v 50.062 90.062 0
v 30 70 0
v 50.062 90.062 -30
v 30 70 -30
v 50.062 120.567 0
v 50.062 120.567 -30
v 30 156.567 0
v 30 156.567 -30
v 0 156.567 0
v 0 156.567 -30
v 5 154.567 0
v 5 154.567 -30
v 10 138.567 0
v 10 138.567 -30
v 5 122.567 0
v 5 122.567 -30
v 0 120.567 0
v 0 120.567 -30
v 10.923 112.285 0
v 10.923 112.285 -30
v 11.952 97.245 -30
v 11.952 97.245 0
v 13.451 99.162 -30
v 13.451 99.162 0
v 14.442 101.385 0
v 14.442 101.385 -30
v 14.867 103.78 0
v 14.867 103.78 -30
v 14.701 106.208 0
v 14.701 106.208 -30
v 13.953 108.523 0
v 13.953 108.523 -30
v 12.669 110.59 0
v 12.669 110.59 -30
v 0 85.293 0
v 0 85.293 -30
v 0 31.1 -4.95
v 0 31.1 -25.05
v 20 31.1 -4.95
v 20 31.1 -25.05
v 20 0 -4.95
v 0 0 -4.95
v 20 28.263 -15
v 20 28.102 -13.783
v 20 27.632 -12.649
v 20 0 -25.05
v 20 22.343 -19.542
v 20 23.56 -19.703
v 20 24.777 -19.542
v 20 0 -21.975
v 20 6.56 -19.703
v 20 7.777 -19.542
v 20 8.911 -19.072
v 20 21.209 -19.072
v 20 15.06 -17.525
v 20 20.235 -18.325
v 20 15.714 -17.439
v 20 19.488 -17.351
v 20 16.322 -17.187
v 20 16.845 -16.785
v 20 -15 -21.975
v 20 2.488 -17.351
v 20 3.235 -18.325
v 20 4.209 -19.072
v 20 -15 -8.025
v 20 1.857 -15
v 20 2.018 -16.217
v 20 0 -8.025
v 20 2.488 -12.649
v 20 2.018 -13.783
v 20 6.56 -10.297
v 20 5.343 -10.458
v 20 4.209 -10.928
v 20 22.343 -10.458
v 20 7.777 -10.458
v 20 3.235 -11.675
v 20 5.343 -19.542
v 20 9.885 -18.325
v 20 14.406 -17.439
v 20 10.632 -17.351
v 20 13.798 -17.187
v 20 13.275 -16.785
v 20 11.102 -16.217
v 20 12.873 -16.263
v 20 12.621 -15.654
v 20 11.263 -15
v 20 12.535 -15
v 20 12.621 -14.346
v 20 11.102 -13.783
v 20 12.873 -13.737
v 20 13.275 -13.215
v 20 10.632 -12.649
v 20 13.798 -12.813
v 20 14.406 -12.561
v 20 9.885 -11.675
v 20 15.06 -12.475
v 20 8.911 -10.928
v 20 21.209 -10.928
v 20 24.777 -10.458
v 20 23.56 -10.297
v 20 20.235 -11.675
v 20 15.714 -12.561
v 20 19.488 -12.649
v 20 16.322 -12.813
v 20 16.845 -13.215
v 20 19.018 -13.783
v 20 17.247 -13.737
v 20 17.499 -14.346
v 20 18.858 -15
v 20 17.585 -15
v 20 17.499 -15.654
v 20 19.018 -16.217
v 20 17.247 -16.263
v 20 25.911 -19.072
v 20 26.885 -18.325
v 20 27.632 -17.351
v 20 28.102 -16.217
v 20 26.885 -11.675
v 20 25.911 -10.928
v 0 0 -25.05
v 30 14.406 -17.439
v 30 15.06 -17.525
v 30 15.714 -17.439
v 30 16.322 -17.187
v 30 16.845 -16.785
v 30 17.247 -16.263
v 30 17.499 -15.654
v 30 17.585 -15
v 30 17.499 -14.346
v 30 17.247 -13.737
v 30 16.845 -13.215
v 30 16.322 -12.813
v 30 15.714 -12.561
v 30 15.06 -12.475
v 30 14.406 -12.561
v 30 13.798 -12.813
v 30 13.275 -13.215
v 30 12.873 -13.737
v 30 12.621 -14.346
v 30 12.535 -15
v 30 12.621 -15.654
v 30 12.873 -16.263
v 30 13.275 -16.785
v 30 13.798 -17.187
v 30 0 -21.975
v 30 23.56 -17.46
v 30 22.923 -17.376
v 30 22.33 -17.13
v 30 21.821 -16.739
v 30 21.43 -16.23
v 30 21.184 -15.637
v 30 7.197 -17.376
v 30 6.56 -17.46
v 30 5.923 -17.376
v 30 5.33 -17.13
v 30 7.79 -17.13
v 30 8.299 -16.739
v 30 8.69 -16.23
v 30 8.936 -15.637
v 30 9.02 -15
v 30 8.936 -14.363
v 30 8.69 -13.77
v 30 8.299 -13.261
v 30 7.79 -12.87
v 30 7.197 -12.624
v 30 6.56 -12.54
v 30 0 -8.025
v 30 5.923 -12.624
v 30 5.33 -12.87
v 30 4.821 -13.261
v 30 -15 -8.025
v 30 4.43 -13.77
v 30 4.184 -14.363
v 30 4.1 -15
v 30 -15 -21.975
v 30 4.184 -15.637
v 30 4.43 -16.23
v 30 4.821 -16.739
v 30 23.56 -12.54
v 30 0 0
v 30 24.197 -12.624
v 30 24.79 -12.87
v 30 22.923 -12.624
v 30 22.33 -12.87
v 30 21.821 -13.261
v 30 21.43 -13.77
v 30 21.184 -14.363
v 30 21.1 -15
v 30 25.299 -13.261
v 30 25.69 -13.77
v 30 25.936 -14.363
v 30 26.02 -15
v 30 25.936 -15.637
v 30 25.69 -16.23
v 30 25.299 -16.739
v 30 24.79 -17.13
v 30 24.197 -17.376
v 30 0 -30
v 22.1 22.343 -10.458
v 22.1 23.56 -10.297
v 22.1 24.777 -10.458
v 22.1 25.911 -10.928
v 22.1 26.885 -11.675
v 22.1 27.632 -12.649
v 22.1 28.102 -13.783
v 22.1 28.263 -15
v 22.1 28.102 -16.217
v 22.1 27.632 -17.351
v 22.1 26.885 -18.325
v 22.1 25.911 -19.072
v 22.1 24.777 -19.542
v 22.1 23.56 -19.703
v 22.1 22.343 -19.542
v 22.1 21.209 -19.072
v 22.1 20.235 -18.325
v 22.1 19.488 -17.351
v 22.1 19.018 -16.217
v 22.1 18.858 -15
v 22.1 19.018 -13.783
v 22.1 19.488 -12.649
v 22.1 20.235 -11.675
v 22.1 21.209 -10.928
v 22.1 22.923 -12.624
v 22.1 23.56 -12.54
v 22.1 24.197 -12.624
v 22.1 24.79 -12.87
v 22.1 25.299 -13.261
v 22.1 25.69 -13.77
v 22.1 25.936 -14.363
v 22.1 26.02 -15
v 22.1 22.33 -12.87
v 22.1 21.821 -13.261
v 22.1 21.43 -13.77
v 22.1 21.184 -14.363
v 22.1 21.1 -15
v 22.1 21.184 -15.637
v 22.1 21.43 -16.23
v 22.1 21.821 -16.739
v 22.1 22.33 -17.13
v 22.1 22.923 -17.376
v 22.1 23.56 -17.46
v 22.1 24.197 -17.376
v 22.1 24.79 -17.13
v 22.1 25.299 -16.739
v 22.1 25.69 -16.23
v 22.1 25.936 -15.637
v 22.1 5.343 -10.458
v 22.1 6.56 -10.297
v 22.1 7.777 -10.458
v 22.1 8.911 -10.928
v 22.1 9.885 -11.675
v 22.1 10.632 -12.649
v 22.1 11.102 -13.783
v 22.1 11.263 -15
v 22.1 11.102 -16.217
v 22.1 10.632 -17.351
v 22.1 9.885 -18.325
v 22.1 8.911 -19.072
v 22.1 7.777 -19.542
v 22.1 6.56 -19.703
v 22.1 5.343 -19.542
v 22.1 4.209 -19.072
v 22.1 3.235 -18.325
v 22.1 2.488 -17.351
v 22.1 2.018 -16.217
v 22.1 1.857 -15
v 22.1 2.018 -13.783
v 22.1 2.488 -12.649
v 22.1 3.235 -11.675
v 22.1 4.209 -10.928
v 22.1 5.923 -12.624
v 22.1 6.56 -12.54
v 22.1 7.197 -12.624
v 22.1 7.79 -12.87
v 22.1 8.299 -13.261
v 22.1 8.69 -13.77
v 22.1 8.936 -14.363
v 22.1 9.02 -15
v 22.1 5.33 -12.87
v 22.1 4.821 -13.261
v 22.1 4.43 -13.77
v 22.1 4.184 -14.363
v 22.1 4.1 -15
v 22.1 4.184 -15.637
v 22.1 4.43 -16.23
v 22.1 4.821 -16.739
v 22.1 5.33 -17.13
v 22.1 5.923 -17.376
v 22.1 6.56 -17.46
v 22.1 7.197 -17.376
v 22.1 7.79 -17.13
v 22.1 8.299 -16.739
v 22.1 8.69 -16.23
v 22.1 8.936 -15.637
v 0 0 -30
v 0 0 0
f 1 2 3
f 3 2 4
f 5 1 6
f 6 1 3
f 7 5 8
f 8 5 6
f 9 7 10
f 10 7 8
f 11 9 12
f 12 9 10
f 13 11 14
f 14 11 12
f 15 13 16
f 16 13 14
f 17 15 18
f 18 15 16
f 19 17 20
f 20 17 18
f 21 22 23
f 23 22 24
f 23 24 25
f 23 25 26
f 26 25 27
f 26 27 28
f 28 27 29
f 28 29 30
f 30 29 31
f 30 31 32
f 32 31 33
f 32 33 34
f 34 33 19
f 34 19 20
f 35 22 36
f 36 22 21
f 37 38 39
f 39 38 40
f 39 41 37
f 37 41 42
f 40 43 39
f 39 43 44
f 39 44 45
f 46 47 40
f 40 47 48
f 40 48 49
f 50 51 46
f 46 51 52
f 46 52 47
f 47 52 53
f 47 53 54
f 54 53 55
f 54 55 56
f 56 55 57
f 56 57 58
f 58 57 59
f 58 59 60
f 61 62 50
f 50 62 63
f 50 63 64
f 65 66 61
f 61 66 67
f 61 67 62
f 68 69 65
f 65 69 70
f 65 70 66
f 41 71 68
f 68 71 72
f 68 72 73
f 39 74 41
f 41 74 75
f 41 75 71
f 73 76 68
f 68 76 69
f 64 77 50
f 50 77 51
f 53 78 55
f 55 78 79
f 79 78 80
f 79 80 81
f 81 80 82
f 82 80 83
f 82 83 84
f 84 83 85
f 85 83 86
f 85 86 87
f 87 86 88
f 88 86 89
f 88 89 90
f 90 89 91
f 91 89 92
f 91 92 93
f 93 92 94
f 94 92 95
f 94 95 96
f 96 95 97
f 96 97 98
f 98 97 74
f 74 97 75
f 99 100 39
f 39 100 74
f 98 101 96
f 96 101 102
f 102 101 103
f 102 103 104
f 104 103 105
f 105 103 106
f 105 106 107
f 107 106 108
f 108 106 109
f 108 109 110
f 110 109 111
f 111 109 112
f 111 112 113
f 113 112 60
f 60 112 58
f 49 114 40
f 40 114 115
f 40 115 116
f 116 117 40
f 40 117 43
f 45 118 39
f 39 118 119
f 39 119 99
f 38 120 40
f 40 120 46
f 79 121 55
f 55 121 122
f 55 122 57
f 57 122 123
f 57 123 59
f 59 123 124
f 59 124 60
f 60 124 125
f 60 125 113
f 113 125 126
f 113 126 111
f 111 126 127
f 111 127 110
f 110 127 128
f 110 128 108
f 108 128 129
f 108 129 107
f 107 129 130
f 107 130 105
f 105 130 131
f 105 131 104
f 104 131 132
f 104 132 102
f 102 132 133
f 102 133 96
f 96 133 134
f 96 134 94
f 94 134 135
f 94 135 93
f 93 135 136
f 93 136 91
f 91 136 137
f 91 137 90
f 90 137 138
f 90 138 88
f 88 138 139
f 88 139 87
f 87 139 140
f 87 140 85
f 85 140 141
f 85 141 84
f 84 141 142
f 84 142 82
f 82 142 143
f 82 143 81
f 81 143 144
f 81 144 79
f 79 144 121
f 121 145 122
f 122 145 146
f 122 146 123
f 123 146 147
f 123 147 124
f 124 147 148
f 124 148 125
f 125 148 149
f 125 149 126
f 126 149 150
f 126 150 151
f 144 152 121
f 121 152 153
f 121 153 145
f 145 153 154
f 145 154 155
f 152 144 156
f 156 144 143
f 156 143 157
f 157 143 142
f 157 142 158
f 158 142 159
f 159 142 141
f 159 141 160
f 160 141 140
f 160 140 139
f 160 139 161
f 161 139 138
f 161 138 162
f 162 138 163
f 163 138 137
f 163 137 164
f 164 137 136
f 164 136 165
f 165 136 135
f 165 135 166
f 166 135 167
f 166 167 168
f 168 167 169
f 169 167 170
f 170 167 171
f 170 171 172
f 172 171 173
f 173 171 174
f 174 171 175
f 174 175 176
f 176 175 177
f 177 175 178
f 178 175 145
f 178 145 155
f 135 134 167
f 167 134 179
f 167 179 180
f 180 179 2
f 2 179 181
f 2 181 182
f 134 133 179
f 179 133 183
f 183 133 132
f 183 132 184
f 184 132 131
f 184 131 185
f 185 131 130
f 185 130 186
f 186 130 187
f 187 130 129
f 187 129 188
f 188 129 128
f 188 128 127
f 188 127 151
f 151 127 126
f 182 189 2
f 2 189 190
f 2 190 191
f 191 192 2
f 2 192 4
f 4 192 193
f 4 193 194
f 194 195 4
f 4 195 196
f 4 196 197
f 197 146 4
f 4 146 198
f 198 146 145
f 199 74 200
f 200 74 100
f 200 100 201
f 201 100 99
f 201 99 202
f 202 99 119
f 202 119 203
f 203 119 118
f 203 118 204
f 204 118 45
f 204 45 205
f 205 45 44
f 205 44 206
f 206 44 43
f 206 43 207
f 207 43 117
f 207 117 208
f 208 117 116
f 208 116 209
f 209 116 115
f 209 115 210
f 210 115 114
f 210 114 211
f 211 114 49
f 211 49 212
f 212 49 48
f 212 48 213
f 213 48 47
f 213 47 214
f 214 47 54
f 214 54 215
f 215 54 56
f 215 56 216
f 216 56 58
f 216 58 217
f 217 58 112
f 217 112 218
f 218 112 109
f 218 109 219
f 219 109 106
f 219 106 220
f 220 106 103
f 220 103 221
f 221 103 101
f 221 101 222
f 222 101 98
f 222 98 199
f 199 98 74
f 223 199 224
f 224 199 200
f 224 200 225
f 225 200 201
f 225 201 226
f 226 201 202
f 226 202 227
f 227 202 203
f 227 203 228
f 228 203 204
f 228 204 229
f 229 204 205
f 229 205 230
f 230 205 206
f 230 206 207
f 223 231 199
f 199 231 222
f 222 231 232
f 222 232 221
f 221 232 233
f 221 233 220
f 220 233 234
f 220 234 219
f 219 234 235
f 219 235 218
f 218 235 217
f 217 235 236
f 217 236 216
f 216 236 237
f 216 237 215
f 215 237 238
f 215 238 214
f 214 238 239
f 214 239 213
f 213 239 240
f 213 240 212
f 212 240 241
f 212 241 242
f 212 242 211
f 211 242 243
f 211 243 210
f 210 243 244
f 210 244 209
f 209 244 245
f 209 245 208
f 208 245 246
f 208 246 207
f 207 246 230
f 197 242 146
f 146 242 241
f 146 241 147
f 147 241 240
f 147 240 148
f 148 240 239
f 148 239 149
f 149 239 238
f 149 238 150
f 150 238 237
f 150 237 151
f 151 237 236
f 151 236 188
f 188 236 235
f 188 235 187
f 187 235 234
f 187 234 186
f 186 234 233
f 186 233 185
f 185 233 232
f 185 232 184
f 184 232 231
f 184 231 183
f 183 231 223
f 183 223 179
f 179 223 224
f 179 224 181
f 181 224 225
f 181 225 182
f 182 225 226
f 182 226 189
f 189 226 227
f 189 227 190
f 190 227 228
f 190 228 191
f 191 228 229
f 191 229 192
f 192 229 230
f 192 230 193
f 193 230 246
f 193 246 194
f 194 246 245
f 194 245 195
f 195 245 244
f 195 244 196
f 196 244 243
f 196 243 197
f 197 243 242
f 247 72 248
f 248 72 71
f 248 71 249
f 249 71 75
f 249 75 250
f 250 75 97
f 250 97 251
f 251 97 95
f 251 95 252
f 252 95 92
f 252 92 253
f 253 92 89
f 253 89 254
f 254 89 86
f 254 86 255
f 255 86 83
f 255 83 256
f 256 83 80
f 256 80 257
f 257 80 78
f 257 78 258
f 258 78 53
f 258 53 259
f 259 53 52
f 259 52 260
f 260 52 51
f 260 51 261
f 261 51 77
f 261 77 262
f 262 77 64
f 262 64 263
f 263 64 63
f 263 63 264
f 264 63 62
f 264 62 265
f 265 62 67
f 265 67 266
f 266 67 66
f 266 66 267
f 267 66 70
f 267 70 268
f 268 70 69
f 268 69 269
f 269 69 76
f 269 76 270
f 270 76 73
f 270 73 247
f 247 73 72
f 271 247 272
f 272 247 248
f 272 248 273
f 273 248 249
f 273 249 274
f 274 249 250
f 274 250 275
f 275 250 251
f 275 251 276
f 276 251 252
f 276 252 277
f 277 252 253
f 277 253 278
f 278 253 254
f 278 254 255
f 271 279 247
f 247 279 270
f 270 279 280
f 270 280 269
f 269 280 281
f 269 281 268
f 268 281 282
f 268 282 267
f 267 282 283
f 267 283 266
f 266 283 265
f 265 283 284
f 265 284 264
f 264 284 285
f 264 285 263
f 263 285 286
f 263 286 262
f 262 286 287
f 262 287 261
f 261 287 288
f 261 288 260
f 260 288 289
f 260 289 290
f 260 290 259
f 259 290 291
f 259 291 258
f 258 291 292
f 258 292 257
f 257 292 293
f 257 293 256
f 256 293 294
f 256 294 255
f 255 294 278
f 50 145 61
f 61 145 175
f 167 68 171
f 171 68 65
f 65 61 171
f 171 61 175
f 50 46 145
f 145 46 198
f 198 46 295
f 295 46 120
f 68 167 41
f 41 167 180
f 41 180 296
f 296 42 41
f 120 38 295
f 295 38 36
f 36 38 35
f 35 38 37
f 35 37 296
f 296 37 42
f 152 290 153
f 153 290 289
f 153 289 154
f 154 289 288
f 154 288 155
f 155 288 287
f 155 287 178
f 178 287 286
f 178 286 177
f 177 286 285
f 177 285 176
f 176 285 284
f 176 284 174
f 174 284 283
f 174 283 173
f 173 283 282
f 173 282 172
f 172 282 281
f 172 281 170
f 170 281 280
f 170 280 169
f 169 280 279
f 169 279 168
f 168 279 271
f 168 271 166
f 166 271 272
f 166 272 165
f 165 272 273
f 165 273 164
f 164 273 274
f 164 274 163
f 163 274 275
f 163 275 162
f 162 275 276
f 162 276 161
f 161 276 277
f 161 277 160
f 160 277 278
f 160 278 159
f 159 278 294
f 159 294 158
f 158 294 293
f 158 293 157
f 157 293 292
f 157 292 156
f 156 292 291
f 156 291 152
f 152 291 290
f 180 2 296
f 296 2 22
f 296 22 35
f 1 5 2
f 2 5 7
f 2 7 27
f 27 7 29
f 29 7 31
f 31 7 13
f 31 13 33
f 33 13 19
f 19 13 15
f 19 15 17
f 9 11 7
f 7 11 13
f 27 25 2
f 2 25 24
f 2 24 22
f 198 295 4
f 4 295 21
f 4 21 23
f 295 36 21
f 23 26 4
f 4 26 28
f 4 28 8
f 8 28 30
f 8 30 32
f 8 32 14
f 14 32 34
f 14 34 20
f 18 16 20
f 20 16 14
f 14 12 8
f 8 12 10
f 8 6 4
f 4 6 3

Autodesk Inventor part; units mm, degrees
ref_plane "YZ Plane" through (0, 0, 0) normal (1, 0, 0) x (0, 1, 0)
ref_plane "XZ Plane" through (0, 0, 0) normal (0, 1, 0) x (-1, 0, 0)
ref_plane "XY Plane" through (0, 0, 0) normal (0, 0, 1) x (1, 0, 0)
sketch "Sketch1" plane through (0, 0, 0) normal (0, 0, 1) x (1, 0, 0)
  line L0 (0, 0) -> (25, 0)
  line L1 (25, 0) -> (25, 40)
  line L2 (25, 40) -> (0, 40)
  line L3 (0, 40) -> (0, 0)
  dimension "d1" = 25
  dimension "d2" = 40
  dimension "d3" = 25
extrude "Extrusion1" add sketch "Sketch1" against normal blind 30
sketch "Sketch2" plane through (25, 0, 0) normal (1, 0, 0) x (0, 0, -1)
  line L0 (0, 0) -> (30, 0) projected
  circle A0 centre (15, 6.56) radius 2.46
extrude "Extrusion2" cut sketch "Sketch2" against normal blind 30
sketch "Sketch3" plane through (0, 0, 0) normal (-1, 0, 0) x (0, 0, 1)
  line L0 (0, 0) -> (-30, 0) projected
  line L1 (-25.05, 0) -> (-4.95, 0)
  line L2 (-4.95, 0) -> (-4.95, 33.12)
  line L3 (-4.95, 33.12) -> (-25.05, 33.12)
  line L4 (-25.05, 33.12) -> (-25.05, 0)
  dimension "d11" = 20.1
extrude "Extrusion3" cut sketch "Sketch3" against normal blind 20
sketch "Sketch4" plane through (0, 0, 0) normal (0, -1, 0) x (1, 0, 0)
  line L0 (20, -4.95) -> (20, -25.05) projected
  line L1 (20, -15) -> (25, -15)
  line L2 (25, 0) -> (25, -30) projected
  line L3 (20, -8.025) -> (25, -8.025)
  line L4 (25, -8.025) -> (25, -21.975)
  line L5 (25, -21.975) -> (20, -21.975)
  line L6 (20, -21.975) -> (20, -8.025)
  line L7 (20, -8.025) -> (25, -21.975) construction
  line L8 (25, -8.025) -> (20, -21.975) construction
  line L9 (25, -12.54) -> (25, -17.46) projected
  point P0 (0, 0)
  point P1 (22.5, -15)
  dimension "d14" = 13.95
extrude "Extrusion4" add sketch "Sketch4" along normal blind 15
sketch "Sketch5" plane through (20, 0, 0) normal (-1, 0, 0) x (0, 0, 1)
  circle A0 centre (-15, 6.56) radius 2.46 projected
  circle A1 centre (-15, 6.56) radius 4.7025
  circle A2 centre (-15, 6.56) radius 2.46 projected
  circle A3 centre (-15, 6.56) radius 2.46
  point P0 (0, 0)
  dimension "d17" = 9.405
extrude "Extrusion5" cut sketch "Sketch5" against normal blind 2.1
sketch "Sketch6" plane through (25, 0, 0) normal (1, 0, 0) x (0, 0, -1)
  circle A0 centre (15, 6.56) radius 4.7025 projected
  line L0 (15, 6.56) -> (15, 23.56)
  circle A1 centre (15, 23.56) radius 2.46
  point P0 (0, 0)
  dimension "d20" = 17
  dimension "d21" = 4.92
extrude "Extrusion6" cut sketch "Sketch6" against normal blind 10 contours A1
sketch "Sketch7" plane through (20, 0, 0) normal (-1, 0, 0) x (0, 0, 1)
  circle A0 centre (-15, 23.56) radius 2.46 projected
  circle A1 centre (-15, 23.56) radius 4.7025
  point P0 (0, 0)
  dimension "d24" = 9.405
extrude "Extrusion7" cut sketch "Sketch7" against normal blind 2.1
sketch "Sketch9" plane through (25, 0, 0) normal (1, 0, 0) x (0, 0, -1)
  circle A0 centre (15, 6.56) radius 2.46 projected
  circle A1 centre (15, 6.56) radius 2.46
  circle A2 centre (15, 23.56) radius 2.46 projected
  circle A3 centre (15, 23.56) radius 2.46
  line L0 (30, 40) -> (30, 0) projected
  line L1 (30, 0) -> (30, 40)
  line L2 (30, 40) -> (0, 40)
  line L3 (0, 40) -> (0, 0)
  line L4 (0, 0) -> (8.025, 0) projected
  line L5 (21.975, 0) -> (21.975, -15)
  line L6 (21.975, -15) -> (8.025, -15)
  line L7 (8.025, -15) -> (8.025, 0)
  line L8 (0, 0) -> (8.025, 0)
  line L9 (21.975, 0) -> (30, 0)
extrude "Extrusion8" add sketch "Sketch9" along normal blind 5
sketch "Sketch10" plane through (0, 40, 0) normal (0, 1, 0) x (1, 0, 0)
  line L0 (0, 30) -> (30, 30) projected
  line L1 (30, 0) -> (0, 0) projected
  line L2 (0, 30) -> (30, 30)
  line L3 (30, 30) -> (30, 0)
  line L4 (30, 0) -> (0, 0)
  line L5 (0, 0) -> (0, 30)
extrude "Extrusion9" add sketch "Sketch10" along normal blind 30
sketch "Sketch12" plane through (30, 0, 0) normal (1, 0, 0) x (0, 0, -1)
  circle A0 centre (15, 6.56) radius 2.46 projected
  line L0 (15, 6.56) -> (15, 15.06)
  circle A1 centre (15, 15.06) radius 2.525
  point P0 (0, 0)
  dimension "d31" = 8.5
  dimension "d33" = 5.05
extrude "Extrusion10" cut sketch "Sketch12" against normal blind 30 contours A1
sketch "Sketch15" plane through (0, 0, -25.05) normal (-1, 0, 0) x (0, 0, 1)
  line L0 (0, 33.12) -> (20.1, 33.12) projected
  line L1 (20.1, 33.12) -> (20.1, 0) projected
  line L2 (0, 33.12) -> (20.1, 33.12)
  line L3 (20.1, 33.12) -> (20.1, 31.1)
  line L4 (20.1, 31.1) -> (0, 31.1)
  line L5 (0, 31.1) -> (0, 33.12)
  point P0 (25.05, 0)
  dimension "d57" = 2.02
extrude "Extrusion13" add sketch "Sketch15" against normal blind 20
sketch "Sketch17" plane through (0, 0, 0) normal (0, 0, 1) x (1, 0, 0)
  line L0 (0, 70) -> (30, 70) projected
  line L1 (30, 70) -> (50.0622, 90.0622)
  line L2 (30, 70) -> (80, 70) construction
  line L3 (11.9522, 97.2454) -> (0, 85.2932)
  line L4 (0, 70) -> (0, 85.2932)
  line L5 (0, 70) -> (0, 0) projected
  line L6 (0, 70) -> (30, 70)
  line L7 (10.923, 112.2849) -> (0, 120.567)
  line L8 (50.0622, 105.3553) -> (50.0622, 120.567)
  line L9 (50.0622, 105.3553) -> (50.0622, 90.0622)
  arc A0 (11.9522, 97.2454) -> (10.923, 112.2849) centre (4.8811, 104.3165) ccw
  line L10 (0, 156.567) -> (30, 156.567)
  line L11 (30, 156.567) -> (50.0622, 120.567)
  line L12 (5, 154.567) -> (0, 156.567)
  line L13 (5, 122.567) -> (0, 120.567)
  line L14 (5, 122.567) -> (10, 138.567)
  line L15 (10, 138.567) -> (5, 154.567)
  dimension "d61" = 45
  dimension "d62" = 32.0271
  dimension "d72" = 10
extrude "Extrusion14" add sketch "Sketch17" against normal blind 30
properties part number "rec_c_32mm_x_30mm"
